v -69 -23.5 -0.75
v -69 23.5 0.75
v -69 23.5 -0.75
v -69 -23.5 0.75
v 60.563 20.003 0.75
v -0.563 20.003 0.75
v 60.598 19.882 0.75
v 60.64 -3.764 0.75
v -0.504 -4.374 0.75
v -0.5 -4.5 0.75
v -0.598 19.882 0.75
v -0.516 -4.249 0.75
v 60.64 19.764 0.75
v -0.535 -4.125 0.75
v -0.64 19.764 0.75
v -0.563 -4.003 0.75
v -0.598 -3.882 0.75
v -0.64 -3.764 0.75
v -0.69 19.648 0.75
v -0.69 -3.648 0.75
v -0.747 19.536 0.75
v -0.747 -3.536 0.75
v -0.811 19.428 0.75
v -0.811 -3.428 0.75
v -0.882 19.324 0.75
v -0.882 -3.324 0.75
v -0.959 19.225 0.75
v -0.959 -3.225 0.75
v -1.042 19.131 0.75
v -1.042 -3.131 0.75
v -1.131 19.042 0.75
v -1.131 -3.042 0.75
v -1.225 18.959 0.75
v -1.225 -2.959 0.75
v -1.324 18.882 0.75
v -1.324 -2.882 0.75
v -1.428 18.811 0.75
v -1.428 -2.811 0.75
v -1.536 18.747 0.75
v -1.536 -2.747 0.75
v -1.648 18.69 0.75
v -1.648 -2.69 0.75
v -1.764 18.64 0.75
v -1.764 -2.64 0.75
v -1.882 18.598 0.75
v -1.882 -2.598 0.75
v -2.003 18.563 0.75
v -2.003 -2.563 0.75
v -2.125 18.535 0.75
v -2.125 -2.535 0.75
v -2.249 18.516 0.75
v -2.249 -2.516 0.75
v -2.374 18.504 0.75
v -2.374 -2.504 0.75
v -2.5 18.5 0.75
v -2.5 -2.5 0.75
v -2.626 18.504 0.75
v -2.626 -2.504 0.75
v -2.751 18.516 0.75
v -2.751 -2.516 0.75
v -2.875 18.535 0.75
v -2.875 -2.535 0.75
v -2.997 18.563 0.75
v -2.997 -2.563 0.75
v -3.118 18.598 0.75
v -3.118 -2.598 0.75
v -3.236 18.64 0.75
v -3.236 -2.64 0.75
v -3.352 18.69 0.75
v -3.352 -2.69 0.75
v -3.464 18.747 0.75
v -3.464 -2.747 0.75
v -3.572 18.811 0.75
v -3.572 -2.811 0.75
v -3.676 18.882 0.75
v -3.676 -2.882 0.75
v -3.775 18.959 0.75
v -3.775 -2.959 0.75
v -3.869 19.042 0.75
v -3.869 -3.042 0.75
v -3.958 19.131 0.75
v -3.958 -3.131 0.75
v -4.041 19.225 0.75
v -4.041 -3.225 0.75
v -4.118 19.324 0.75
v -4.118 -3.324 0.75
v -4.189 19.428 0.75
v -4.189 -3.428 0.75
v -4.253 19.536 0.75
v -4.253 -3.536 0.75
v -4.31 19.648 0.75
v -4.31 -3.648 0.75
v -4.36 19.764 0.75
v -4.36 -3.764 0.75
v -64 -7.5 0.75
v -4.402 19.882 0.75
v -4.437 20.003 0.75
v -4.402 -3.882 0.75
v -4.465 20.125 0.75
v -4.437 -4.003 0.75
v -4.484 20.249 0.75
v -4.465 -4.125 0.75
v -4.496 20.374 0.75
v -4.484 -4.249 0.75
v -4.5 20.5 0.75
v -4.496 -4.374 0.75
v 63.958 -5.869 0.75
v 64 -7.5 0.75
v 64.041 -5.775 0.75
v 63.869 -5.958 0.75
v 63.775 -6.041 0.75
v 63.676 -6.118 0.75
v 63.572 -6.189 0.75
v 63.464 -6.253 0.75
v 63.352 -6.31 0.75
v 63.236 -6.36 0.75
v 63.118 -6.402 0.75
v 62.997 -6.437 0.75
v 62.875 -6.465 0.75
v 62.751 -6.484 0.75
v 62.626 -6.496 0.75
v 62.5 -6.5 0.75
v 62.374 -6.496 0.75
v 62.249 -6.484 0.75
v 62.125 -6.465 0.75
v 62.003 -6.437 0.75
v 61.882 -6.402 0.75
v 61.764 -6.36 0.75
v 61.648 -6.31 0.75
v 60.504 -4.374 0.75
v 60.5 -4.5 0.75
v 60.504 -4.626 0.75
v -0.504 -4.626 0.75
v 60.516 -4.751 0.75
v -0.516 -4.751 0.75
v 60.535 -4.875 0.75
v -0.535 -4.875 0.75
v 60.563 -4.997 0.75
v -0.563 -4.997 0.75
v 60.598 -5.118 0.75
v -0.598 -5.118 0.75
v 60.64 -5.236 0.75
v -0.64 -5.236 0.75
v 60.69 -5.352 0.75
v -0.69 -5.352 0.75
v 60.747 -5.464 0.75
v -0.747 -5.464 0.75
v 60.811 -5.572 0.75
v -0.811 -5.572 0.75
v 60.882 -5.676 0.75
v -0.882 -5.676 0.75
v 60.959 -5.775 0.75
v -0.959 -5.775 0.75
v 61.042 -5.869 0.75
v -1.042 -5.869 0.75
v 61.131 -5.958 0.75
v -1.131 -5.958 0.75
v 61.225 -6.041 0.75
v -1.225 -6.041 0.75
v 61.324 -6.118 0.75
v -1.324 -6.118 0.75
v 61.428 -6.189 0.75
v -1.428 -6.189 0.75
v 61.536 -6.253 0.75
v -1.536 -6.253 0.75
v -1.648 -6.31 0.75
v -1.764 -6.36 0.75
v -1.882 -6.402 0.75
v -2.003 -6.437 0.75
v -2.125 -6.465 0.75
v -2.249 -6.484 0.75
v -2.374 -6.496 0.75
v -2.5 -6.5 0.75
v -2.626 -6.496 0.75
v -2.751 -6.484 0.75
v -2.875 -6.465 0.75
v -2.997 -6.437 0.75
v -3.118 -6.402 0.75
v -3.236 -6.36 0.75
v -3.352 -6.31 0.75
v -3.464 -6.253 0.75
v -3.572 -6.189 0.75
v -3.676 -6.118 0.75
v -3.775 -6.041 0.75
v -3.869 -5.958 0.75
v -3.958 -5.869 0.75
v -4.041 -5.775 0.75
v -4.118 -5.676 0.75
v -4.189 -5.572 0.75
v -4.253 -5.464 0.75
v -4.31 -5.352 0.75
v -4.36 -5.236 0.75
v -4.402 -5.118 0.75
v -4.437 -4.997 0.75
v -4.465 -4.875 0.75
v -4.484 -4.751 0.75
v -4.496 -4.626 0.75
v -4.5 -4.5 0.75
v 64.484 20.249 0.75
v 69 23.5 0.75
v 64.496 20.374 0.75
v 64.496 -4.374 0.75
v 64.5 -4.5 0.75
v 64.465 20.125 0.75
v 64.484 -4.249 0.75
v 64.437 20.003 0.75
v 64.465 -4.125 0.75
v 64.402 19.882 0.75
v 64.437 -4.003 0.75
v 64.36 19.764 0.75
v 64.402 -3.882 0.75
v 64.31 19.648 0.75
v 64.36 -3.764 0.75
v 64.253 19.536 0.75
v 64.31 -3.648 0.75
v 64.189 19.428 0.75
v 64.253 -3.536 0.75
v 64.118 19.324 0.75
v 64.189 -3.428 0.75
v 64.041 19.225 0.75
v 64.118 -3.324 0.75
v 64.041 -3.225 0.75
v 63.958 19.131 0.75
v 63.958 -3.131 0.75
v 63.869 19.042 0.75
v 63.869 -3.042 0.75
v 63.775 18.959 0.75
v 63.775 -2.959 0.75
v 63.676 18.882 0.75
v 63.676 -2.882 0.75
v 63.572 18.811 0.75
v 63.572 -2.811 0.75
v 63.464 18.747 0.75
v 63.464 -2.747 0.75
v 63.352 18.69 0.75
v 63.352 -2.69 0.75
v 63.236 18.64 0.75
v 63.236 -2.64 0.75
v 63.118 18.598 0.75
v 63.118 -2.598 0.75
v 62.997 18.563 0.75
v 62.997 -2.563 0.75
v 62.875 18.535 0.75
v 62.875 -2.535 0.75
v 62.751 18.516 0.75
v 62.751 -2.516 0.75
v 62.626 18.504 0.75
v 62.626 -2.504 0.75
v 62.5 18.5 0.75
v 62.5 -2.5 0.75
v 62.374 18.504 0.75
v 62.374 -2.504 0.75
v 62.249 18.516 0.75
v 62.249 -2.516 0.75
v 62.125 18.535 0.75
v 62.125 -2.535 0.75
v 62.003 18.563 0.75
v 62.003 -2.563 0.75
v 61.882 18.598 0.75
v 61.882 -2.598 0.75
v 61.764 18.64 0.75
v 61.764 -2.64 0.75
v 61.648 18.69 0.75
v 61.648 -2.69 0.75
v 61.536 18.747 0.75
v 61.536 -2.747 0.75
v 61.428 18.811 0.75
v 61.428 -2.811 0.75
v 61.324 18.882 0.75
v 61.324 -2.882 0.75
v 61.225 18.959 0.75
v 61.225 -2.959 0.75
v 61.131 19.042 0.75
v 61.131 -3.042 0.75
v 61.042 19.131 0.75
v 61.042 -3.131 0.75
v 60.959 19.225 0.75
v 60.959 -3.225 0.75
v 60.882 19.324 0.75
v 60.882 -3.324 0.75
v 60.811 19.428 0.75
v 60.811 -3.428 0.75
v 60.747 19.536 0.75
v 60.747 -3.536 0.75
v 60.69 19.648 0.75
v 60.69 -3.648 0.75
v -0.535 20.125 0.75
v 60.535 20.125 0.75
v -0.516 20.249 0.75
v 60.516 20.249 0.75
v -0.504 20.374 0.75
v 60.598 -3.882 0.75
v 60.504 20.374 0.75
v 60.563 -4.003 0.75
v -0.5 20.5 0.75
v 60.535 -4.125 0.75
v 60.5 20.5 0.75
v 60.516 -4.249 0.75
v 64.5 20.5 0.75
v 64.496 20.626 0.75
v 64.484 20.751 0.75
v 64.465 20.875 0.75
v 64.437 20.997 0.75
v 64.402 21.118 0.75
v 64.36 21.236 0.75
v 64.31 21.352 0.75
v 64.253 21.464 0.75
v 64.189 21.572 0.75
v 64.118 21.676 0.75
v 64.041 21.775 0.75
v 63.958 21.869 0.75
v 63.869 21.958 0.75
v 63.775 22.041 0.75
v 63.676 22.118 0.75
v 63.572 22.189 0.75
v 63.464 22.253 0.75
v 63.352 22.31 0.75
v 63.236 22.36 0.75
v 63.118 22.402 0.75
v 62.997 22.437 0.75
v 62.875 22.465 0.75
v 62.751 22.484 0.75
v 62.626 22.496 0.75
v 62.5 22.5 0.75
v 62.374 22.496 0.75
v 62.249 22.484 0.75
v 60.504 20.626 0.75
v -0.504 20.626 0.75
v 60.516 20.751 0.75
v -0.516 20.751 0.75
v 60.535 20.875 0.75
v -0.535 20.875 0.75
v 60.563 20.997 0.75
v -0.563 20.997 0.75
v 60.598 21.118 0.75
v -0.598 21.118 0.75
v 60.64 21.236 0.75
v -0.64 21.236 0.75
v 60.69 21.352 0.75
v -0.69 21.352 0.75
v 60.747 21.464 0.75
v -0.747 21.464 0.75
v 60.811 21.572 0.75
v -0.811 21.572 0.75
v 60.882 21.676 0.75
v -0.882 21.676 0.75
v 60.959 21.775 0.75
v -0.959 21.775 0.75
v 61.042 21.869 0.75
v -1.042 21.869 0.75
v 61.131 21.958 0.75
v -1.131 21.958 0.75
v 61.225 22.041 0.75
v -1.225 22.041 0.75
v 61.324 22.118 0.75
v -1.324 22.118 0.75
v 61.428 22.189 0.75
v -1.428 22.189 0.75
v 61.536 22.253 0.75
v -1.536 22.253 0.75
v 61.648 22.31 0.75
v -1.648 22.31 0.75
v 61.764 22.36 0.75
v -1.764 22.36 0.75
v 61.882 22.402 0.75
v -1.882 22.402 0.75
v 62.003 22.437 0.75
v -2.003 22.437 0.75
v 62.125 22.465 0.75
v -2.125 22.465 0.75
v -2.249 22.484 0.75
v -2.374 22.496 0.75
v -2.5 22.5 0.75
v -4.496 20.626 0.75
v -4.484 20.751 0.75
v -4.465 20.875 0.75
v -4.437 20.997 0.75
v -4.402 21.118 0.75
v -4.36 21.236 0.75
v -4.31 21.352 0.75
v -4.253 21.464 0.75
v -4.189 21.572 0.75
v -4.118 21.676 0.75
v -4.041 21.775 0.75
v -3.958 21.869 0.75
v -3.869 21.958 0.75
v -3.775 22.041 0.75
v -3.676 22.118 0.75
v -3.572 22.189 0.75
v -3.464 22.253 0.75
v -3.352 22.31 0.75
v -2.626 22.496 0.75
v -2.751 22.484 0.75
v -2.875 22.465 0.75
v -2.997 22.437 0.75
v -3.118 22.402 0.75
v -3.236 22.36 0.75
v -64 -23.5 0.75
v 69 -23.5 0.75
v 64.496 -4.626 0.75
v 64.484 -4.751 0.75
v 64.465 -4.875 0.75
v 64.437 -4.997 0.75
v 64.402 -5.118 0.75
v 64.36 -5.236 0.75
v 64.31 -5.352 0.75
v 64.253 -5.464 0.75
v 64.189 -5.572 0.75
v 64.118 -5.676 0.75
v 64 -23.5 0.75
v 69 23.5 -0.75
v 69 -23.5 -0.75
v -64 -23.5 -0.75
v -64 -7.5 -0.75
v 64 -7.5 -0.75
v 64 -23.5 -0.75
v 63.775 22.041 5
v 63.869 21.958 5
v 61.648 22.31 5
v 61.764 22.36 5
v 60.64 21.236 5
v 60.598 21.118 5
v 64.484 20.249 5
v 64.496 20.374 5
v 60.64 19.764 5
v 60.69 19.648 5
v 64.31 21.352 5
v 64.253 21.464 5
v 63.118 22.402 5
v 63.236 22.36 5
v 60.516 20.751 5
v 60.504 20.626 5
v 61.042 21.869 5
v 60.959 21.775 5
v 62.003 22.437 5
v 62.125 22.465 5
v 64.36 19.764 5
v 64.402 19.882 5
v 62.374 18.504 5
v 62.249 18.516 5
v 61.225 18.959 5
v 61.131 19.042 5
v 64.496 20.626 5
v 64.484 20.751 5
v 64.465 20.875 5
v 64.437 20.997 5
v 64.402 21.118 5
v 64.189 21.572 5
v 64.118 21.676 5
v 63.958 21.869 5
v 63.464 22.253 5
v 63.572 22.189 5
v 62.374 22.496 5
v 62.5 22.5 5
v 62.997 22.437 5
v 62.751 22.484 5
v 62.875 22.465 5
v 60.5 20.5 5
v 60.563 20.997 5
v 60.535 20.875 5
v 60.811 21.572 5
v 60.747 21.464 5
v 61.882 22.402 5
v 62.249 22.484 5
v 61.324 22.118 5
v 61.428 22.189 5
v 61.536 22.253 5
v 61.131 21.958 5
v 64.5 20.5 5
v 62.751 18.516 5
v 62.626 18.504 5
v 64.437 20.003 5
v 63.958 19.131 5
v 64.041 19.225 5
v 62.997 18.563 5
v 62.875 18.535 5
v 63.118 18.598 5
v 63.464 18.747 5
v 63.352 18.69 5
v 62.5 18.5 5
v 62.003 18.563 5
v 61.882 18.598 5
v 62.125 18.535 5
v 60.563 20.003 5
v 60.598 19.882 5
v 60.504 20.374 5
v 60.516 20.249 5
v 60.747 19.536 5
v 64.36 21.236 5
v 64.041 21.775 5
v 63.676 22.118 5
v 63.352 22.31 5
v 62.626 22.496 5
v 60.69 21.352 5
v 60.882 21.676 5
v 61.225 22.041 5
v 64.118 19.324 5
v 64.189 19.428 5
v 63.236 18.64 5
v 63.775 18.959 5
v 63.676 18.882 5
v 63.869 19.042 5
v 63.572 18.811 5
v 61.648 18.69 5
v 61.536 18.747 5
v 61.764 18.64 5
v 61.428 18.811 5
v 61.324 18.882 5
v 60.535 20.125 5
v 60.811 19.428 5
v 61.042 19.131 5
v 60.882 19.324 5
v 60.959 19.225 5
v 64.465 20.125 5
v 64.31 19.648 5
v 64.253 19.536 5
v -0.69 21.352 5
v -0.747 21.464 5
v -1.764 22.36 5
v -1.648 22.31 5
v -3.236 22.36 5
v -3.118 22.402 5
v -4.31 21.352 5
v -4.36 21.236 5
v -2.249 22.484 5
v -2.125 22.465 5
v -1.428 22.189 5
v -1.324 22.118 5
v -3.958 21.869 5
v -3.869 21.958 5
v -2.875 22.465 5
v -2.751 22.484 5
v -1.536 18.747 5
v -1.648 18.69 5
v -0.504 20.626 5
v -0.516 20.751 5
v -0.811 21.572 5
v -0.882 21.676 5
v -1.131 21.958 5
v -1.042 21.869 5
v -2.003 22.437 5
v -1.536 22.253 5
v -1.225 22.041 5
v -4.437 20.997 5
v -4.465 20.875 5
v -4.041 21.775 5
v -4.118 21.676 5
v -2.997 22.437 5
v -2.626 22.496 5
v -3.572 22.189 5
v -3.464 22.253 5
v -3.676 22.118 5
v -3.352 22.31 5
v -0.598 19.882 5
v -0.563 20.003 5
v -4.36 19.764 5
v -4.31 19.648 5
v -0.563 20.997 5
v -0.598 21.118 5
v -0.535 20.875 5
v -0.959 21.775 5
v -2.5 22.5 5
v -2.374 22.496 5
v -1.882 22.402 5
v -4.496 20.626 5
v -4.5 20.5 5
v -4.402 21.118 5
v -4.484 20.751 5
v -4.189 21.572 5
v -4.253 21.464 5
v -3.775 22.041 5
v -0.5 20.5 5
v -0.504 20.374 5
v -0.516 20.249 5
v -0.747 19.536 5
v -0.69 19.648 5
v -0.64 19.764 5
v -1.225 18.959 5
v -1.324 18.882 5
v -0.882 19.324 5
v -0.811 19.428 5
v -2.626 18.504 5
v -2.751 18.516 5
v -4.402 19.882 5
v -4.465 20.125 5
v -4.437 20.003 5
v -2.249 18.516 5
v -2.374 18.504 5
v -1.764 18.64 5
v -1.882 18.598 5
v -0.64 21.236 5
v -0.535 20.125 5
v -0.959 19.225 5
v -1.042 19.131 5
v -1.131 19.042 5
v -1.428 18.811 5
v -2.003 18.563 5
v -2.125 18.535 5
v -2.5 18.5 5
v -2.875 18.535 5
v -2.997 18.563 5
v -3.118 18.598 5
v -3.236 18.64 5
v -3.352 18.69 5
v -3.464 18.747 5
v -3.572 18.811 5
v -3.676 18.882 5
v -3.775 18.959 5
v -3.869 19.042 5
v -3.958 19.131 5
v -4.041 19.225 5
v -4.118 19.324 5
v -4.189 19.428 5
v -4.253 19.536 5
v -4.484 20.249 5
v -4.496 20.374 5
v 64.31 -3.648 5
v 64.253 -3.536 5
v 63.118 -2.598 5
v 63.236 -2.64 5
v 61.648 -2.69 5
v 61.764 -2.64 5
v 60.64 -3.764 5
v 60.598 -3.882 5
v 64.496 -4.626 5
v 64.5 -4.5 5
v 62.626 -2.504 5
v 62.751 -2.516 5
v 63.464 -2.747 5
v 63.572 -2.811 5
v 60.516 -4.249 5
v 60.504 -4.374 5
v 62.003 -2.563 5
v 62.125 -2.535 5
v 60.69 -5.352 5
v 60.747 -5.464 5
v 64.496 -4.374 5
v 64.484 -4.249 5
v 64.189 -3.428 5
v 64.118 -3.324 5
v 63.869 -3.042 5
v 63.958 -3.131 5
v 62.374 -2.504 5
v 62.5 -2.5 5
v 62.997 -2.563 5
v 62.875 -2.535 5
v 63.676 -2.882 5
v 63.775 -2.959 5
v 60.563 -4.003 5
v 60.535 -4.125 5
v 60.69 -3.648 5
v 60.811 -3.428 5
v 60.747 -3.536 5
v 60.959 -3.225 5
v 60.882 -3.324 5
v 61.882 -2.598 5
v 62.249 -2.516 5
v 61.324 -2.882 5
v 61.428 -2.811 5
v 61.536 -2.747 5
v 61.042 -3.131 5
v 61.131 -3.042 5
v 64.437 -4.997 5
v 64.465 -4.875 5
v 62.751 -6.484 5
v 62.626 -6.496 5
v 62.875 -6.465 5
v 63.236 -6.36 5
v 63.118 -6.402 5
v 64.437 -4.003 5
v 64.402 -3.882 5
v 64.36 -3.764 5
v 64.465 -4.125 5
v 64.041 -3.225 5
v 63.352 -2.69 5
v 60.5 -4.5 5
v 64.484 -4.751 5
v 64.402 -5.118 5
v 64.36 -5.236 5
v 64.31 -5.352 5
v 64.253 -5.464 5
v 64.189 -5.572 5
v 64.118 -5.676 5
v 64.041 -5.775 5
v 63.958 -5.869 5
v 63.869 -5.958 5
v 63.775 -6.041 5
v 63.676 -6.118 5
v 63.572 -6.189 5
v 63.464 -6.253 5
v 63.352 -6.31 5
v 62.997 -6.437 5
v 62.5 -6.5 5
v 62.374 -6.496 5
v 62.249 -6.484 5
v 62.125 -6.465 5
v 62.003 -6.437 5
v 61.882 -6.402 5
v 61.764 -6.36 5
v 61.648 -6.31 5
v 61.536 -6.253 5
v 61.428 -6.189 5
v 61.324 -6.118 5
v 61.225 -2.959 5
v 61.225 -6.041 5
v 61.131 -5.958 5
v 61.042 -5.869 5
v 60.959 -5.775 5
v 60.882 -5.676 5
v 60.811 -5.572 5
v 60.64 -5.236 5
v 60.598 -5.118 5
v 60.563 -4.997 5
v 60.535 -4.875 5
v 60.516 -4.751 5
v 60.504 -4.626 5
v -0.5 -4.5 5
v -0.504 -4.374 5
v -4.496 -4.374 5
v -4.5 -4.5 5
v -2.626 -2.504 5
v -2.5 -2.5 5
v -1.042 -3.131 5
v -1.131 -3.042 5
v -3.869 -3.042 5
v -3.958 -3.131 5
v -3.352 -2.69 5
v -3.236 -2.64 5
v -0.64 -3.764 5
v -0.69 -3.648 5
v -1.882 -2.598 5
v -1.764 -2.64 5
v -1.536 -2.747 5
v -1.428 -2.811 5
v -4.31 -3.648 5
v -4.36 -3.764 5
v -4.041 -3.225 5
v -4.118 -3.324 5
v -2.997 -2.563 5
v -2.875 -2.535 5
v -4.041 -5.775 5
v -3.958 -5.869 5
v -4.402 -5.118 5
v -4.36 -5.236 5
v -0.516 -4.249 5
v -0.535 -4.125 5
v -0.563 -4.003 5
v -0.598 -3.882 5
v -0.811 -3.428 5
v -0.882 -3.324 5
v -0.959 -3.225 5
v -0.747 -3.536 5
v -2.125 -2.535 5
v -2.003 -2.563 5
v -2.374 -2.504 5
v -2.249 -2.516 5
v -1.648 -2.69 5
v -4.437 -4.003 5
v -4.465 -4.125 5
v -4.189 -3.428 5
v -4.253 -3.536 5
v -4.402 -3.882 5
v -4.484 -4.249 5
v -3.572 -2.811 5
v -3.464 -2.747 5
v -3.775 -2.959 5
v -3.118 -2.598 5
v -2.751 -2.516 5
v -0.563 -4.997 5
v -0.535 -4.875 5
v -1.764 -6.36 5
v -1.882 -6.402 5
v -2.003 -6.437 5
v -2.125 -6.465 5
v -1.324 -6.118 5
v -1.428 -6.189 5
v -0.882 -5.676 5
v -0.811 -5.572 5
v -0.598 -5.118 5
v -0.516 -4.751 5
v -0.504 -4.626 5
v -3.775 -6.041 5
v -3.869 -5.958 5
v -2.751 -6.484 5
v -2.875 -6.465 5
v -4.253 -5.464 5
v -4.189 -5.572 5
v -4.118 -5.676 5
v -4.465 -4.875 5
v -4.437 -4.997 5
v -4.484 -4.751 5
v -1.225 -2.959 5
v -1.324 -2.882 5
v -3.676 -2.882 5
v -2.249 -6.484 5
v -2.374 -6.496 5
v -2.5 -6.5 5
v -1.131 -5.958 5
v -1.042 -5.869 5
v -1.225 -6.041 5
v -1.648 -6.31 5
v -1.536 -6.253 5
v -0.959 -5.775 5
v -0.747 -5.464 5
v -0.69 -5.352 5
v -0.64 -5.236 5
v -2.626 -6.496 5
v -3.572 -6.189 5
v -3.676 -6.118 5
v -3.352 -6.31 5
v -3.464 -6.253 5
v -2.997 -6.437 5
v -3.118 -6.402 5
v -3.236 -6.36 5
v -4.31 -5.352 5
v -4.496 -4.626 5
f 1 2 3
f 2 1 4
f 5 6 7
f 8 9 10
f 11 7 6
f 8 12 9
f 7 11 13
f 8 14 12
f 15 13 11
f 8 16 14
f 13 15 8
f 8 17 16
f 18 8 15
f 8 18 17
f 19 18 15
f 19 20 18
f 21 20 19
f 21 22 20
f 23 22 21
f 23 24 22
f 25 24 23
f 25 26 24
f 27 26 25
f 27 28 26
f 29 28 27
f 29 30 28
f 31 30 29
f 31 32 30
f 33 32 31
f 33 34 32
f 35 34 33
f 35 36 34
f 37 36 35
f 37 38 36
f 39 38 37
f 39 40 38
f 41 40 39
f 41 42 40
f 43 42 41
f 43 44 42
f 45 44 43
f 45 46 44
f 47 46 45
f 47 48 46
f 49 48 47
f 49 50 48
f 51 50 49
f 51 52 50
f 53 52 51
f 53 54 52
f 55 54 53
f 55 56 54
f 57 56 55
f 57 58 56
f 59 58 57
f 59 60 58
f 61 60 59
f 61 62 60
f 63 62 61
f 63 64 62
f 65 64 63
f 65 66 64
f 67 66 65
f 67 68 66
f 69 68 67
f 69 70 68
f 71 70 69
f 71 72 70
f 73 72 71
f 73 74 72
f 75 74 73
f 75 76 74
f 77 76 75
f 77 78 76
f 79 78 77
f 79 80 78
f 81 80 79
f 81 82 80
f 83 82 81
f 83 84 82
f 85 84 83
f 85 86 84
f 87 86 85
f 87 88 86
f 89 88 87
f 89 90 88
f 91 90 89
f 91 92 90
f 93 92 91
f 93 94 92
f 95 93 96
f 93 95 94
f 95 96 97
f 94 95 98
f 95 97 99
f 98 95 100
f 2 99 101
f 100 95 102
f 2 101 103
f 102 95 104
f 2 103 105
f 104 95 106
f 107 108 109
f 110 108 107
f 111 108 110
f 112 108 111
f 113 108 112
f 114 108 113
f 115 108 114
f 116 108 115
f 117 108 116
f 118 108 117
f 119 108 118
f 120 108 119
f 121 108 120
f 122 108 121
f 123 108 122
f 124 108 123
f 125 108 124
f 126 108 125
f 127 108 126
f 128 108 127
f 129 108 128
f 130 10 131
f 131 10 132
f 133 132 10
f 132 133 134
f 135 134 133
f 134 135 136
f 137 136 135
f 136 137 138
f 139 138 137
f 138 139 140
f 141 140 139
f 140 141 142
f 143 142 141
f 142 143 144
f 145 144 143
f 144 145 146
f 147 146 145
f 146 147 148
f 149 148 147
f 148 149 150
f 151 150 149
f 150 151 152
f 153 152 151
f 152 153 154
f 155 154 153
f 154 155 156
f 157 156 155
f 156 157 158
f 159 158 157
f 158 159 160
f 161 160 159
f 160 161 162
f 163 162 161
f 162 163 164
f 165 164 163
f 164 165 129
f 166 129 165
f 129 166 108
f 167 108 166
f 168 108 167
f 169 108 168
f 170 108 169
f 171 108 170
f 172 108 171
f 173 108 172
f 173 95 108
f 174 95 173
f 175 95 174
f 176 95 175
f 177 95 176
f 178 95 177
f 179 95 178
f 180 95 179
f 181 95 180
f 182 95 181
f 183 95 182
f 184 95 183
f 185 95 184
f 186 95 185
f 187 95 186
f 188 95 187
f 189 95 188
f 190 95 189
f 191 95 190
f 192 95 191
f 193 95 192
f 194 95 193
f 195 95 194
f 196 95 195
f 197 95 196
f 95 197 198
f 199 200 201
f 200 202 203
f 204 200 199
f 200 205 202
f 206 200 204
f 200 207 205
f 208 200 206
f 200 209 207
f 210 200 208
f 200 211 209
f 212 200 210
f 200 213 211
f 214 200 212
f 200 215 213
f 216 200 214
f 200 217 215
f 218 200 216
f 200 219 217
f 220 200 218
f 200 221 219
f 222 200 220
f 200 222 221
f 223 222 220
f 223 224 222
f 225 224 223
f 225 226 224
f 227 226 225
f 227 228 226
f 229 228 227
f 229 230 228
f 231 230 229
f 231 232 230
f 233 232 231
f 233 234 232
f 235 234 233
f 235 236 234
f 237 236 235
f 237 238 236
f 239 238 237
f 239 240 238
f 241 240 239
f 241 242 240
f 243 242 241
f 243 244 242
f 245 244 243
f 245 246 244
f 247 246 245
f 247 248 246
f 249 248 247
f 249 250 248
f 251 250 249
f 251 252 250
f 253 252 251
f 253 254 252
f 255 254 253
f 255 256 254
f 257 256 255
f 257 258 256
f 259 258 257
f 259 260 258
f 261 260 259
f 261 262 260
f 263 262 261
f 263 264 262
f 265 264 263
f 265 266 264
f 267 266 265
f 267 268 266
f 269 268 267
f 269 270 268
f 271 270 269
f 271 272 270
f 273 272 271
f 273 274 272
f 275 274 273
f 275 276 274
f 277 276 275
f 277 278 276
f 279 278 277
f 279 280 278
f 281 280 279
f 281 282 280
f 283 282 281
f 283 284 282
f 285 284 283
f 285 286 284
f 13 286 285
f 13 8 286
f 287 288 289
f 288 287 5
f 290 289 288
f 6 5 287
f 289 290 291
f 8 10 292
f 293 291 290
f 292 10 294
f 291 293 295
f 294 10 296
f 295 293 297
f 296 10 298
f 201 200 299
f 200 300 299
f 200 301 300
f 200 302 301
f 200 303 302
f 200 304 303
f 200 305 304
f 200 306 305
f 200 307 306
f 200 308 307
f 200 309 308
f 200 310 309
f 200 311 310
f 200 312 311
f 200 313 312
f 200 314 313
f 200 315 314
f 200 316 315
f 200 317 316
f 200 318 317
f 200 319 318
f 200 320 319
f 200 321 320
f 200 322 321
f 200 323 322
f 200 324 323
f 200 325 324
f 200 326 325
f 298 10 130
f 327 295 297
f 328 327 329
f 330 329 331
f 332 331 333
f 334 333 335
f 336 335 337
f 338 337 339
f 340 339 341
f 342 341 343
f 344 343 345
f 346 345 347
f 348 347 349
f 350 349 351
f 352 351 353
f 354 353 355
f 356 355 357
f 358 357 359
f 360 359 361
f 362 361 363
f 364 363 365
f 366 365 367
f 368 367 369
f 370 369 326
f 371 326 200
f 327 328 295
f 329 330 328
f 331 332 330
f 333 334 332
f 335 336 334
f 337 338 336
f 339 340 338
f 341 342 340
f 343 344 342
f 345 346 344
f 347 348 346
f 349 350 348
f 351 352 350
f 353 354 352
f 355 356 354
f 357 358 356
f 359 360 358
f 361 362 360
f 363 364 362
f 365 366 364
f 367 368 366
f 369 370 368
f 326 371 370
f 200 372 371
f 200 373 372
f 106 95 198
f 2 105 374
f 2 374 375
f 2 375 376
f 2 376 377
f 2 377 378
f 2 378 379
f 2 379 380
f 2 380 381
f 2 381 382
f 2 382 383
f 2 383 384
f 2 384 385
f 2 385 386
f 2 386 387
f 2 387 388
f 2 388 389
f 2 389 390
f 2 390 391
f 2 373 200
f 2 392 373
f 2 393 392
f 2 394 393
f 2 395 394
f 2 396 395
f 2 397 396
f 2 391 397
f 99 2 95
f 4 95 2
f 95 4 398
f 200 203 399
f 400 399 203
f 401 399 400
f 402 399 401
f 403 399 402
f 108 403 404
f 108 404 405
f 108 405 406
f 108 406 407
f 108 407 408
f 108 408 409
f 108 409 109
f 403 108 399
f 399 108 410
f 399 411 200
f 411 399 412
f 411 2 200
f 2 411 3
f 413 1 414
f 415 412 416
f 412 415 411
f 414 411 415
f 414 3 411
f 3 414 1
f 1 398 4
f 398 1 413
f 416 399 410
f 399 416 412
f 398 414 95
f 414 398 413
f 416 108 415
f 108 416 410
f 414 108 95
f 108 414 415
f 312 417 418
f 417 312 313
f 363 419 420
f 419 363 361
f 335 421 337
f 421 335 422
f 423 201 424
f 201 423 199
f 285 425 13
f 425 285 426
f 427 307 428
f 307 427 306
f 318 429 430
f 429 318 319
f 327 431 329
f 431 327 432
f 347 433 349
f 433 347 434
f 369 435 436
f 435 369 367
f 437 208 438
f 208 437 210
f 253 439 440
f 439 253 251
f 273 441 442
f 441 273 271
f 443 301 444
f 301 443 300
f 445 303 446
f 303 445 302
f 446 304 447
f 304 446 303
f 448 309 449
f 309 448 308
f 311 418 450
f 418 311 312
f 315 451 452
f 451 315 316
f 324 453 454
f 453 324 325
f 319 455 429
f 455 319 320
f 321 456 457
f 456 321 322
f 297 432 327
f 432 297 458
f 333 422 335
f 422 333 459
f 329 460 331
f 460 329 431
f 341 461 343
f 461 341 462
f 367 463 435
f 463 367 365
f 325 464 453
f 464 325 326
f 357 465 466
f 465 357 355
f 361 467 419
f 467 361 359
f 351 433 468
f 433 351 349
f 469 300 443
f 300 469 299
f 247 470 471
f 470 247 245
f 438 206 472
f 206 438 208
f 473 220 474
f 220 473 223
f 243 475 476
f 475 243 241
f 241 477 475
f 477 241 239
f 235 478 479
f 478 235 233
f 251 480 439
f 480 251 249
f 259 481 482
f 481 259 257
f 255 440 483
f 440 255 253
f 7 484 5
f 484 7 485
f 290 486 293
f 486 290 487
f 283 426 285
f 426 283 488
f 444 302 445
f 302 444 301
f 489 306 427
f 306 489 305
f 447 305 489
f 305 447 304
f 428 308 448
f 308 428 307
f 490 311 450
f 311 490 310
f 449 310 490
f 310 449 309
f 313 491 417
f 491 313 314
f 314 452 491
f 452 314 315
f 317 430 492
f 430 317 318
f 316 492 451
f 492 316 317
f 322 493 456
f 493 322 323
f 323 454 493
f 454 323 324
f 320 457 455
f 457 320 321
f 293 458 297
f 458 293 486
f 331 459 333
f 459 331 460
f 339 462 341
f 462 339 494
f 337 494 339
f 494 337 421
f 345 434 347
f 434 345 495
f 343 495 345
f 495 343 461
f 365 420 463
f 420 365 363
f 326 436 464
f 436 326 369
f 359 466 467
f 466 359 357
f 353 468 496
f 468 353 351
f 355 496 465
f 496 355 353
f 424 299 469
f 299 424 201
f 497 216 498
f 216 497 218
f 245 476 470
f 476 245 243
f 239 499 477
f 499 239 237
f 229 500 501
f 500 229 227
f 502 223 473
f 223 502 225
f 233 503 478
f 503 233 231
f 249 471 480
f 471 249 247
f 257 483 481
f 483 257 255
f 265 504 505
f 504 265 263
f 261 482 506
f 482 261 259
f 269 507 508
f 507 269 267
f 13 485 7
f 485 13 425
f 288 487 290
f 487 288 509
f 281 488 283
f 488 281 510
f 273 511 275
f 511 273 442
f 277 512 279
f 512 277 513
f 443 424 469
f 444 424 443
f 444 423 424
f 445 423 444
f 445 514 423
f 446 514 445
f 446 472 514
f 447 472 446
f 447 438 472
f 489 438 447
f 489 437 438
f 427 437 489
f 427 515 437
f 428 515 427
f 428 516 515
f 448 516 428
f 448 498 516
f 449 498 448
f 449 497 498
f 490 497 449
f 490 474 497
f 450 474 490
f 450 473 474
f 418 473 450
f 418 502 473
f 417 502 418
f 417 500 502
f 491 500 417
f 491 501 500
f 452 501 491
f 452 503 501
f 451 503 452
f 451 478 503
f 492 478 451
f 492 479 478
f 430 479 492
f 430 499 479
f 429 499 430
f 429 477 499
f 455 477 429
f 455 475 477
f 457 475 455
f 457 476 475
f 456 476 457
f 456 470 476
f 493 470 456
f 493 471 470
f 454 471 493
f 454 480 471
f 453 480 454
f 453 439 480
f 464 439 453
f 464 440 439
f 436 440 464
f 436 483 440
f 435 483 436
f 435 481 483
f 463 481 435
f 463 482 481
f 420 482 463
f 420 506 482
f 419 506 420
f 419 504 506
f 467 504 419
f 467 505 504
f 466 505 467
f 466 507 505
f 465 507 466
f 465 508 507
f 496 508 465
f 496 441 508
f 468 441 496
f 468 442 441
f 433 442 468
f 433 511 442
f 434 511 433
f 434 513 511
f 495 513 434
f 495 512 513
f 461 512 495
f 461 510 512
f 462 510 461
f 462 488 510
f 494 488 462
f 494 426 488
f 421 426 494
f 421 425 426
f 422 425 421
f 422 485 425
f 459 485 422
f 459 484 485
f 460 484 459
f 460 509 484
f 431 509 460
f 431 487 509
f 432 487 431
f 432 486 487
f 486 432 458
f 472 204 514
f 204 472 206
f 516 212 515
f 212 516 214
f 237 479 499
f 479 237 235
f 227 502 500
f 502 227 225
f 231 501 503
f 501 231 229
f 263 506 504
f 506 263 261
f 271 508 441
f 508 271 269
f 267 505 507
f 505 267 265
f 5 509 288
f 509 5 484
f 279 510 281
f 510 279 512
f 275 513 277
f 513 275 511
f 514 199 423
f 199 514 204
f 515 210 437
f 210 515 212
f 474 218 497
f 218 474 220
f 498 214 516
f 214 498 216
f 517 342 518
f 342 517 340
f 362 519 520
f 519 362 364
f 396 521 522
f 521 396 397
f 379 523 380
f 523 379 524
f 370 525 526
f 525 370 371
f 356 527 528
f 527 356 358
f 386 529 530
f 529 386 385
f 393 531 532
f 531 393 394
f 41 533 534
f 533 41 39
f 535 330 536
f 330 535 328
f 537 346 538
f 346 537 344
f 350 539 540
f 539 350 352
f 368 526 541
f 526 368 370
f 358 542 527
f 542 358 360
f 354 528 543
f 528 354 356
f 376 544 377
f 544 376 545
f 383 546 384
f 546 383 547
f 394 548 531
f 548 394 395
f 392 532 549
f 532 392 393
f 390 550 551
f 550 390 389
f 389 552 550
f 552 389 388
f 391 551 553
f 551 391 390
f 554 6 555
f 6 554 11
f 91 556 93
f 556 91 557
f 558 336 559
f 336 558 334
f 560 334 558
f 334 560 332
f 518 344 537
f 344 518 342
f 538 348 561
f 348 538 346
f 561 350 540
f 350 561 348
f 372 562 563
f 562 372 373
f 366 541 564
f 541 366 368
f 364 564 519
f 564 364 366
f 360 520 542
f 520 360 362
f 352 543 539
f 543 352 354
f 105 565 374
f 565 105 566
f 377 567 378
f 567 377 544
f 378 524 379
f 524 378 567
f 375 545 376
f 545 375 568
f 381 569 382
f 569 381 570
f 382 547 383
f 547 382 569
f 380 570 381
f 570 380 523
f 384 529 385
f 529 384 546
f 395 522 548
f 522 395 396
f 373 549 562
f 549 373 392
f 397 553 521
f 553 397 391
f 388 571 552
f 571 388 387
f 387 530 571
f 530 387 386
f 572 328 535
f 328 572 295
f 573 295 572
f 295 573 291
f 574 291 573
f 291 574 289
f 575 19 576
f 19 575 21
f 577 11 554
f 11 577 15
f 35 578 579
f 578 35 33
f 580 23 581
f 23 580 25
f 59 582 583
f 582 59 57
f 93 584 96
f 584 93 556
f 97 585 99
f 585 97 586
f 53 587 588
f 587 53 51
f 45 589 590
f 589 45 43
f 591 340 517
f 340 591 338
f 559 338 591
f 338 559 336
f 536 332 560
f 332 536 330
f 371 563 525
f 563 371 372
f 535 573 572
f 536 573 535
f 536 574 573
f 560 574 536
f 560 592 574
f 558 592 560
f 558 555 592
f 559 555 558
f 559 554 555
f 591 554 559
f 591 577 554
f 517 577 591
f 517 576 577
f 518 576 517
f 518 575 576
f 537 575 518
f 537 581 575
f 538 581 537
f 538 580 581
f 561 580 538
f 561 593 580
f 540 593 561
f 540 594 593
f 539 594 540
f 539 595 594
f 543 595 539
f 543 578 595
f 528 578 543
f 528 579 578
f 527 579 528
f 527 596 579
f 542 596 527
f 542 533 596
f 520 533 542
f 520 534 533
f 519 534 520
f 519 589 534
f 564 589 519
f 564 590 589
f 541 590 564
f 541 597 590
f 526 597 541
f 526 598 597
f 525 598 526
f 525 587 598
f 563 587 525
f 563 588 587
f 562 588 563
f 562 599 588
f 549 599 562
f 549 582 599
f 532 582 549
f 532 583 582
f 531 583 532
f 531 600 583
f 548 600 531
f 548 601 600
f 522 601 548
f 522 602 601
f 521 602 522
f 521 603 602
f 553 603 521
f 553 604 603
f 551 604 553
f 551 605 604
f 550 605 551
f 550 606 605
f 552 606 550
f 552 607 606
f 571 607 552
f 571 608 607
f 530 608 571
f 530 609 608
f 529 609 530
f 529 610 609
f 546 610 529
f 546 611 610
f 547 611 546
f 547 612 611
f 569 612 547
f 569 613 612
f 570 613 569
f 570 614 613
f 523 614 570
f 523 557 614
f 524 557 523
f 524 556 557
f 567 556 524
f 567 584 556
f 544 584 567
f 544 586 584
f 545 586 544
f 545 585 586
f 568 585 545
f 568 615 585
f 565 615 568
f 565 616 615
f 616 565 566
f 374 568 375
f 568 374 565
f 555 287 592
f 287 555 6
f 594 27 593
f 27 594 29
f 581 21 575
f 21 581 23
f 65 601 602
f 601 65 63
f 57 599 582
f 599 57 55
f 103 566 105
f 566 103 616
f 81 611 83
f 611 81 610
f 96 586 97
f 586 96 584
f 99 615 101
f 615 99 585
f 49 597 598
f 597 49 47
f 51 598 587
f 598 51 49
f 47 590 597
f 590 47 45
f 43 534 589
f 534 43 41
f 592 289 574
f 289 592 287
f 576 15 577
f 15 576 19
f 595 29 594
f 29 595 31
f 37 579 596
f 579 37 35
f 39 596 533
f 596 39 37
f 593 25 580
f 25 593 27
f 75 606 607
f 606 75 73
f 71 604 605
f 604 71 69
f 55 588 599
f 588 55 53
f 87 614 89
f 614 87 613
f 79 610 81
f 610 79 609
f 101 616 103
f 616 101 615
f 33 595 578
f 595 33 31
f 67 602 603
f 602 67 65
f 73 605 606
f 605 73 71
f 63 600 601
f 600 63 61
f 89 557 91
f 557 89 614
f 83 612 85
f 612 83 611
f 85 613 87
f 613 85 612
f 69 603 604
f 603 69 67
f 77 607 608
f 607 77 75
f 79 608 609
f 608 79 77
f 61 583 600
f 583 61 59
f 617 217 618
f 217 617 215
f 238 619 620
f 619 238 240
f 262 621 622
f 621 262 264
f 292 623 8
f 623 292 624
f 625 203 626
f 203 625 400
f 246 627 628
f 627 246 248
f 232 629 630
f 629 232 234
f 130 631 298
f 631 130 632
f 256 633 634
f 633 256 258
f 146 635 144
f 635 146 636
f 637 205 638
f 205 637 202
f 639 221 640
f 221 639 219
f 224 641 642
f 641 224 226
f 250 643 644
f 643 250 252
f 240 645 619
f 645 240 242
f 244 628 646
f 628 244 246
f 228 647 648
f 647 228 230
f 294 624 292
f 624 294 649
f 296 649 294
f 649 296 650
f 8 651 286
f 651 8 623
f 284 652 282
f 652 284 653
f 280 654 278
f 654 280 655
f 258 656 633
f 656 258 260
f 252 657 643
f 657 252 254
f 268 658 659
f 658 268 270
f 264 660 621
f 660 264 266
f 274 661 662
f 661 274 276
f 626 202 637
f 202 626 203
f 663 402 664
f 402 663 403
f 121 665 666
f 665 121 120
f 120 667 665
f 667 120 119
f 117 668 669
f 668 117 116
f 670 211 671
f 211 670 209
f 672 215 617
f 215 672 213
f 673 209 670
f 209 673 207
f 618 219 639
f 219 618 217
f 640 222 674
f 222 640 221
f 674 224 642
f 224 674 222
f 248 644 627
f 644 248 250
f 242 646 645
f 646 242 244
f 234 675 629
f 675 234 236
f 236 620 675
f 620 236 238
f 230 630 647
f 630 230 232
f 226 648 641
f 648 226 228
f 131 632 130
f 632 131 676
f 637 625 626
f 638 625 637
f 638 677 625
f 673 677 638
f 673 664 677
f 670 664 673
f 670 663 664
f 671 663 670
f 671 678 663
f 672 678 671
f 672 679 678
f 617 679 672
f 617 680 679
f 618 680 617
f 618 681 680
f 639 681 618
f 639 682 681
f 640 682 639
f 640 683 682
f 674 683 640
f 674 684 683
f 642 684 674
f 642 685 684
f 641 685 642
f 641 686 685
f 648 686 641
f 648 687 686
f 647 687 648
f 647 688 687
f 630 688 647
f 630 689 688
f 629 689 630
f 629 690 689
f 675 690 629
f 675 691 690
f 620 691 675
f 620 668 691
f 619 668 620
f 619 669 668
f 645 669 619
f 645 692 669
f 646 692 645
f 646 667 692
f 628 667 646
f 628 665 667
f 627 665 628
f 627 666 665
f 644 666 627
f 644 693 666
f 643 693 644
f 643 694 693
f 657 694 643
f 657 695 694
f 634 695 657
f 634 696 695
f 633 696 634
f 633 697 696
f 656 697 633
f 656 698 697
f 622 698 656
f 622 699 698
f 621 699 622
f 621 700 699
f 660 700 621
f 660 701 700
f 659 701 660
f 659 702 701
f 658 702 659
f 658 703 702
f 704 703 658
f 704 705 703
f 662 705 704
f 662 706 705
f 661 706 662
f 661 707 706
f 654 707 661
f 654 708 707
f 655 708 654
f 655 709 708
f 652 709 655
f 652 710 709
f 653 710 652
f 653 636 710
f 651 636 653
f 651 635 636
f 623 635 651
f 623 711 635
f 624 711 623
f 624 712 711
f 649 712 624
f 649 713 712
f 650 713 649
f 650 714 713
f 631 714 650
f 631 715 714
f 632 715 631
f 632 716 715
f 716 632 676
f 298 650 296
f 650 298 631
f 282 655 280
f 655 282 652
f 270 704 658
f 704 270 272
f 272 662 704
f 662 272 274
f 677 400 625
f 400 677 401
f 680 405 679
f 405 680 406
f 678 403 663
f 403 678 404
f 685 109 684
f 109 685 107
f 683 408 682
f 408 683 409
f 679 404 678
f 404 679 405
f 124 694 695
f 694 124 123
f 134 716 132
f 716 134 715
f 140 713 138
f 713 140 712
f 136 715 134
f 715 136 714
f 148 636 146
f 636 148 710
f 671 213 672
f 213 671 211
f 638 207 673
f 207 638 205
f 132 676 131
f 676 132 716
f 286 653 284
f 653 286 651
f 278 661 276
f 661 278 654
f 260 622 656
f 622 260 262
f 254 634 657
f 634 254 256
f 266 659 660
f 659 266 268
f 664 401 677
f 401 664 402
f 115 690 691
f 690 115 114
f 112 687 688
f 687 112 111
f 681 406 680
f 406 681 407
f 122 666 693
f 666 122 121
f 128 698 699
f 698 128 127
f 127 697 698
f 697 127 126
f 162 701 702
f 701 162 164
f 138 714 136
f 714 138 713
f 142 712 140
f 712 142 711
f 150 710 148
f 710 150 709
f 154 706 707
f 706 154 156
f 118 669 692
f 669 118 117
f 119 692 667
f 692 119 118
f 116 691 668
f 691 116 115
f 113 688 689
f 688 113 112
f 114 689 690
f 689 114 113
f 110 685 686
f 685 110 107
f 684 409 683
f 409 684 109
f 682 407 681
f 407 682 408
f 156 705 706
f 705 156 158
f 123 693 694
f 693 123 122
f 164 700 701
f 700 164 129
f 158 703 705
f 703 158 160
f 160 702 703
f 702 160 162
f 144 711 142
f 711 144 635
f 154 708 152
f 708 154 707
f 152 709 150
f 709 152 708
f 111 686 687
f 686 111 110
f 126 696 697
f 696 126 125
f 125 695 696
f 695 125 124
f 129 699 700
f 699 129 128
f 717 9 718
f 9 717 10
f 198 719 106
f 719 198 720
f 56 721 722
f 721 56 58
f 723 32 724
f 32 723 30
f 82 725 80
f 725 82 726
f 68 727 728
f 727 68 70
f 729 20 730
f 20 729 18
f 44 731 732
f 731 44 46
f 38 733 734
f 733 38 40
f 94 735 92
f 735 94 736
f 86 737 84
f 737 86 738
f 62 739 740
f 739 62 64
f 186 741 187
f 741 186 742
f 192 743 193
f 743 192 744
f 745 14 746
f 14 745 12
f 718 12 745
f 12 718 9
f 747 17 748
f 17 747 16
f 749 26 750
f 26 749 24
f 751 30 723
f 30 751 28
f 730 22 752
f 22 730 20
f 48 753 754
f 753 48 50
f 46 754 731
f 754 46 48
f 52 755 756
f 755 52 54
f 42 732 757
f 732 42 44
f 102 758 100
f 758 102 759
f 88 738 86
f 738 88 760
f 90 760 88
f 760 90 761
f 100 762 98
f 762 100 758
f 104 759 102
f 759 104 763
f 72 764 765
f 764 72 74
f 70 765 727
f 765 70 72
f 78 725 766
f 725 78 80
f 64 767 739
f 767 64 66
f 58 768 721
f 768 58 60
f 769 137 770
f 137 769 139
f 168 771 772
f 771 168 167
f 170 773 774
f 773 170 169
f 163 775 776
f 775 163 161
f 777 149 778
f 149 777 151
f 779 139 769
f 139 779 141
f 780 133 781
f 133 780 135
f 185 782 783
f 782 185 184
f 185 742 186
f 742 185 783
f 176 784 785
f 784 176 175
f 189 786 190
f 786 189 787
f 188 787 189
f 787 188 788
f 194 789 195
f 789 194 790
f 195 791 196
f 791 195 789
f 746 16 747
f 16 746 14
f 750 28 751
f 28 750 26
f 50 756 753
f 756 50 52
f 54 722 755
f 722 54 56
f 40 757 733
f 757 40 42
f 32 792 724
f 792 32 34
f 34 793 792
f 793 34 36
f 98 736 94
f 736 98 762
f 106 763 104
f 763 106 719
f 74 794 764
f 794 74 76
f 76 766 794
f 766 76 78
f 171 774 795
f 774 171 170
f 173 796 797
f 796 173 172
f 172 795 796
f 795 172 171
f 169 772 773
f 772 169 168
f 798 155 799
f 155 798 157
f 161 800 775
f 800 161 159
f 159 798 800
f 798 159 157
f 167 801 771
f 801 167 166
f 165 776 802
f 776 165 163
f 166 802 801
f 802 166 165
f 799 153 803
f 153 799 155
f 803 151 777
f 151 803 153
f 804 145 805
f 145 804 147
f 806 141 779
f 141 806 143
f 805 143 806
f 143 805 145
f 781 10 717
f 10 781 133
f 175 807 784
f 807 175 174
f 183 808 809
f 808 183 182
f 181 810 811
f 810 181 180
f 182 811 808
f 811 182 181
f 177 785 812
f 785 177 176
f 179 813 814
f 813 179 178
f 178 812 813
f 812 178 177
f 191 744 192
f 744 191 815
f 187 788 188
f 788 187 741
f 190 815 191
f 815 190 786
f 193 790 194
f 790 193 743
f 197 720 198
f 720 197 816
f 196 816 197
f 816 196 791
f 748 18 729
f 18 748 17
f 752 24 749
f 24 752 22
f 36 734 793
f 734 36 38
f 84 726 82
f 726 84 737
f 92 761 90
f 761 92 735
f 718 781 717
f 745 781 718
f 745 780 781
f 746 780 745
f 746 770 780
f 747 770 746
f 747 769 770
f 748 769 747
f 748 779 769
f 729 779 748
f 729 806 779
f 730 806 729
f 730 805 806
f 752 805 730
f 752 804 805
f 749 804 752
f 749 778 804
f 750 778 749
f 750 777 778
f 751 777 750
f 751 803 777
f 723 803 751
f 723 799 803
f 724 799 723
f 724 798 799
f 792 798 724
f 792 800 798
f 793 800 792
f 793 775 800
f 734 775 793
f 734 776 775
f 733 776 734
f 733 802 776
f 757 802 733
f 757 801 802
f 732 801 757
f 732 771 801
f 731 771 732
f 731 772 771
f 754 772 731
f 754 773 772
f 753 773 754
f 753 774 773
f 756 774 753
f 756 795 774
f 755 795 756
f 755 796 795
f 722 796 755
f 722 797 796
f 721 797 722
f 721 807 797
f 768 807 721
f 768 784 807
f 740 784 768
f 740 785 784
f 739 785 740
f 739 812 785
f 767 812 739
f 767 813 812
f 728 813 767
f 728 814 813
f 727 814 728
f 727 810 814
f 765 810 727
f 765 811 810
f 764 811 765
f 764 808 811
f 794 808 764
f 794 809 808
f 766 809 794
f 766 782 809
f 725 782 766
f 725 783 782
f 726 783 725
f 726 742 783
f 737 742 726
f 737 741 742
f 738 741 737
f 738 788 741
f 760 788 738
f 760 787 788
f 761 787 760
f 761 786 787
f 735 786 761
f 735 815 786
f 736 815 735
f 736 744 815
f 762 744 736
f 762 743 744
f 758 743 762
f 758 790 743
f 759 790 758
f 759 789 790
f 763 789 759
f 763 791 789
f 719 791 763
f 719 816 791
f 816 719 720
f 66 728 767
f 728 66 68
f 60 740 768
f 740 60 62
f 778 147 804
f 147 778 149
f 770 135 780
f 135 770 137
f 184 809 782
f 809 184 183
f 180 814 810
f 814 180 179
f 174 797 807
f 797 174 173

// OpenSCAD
$fn=100;


powerboard();


module powerboard() {
    board();
    translate([30,8,0]) power();
}

module board() {
    difference() {
        cube([138,47,1.5],center=true);
        translate([0,-15.5,0]) #cube([128,16,1.5],center=true);
    }
}


module power() {
    cube([70,30,1.5], center=true);
    translate([65/2,25/2,5/2]) cylinder(d=4,h=5,center=true);
    translate([-65/2,25/2,5/2]) cylinder(d=4,h=5,center=true);
    translate([65/2,-25/2,5/2]) cylinder(d=4,h=5,center=true);
    translate([-65/2,-25/2,5/2]) cylinder(d=4,h=5,center=true); 
}
